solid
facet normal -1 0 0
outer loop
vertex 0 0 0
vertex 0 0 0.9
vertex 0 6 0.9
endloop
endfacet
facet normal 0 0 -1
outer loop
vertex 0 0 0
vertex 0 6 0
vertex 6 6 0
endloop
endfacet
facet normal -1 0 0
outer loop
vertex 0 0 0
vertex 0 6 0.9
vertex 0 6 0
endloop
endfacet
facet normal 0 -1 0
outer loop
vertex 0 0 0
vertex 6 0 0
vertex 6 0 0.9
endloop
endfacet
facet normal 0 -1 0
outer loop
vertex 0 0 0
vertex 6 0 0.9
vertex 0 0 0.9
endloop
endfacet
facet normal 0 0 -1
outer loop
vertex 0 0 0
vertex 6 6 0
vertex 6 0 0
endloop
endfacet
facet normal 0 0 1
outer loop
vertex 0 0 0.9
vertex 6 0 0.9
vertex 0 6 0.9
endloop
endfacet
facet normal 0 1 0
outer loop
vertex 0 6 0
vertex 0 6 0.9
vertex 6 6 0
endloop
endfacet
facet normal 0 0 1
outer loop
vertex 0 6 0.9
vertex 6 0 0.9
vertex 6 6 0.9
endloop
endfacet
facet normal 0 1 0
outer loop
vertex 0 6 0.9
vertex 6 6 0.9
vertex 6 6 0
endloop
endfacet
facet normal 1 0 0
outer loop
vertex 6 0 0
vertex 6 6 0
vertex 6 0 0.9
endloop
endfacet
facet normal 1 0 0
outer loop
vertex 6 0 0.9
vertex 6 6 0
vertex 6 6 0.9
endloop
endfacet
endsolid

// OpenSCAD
/* Warning, this is a very basic generator with a lot of approximation 
input data : [VQFN, VSX, 6x6x0.9mm, 48, , B, C04-00427B]
generated by com.zoubworld.electronics.cad.model3d.Basic
Date : Sun Feb 15 10:50:48 CET 2026
*/

//body
color("black")
translate([0,0,0])
cube([6.0,6.0,0.9], center=false);
